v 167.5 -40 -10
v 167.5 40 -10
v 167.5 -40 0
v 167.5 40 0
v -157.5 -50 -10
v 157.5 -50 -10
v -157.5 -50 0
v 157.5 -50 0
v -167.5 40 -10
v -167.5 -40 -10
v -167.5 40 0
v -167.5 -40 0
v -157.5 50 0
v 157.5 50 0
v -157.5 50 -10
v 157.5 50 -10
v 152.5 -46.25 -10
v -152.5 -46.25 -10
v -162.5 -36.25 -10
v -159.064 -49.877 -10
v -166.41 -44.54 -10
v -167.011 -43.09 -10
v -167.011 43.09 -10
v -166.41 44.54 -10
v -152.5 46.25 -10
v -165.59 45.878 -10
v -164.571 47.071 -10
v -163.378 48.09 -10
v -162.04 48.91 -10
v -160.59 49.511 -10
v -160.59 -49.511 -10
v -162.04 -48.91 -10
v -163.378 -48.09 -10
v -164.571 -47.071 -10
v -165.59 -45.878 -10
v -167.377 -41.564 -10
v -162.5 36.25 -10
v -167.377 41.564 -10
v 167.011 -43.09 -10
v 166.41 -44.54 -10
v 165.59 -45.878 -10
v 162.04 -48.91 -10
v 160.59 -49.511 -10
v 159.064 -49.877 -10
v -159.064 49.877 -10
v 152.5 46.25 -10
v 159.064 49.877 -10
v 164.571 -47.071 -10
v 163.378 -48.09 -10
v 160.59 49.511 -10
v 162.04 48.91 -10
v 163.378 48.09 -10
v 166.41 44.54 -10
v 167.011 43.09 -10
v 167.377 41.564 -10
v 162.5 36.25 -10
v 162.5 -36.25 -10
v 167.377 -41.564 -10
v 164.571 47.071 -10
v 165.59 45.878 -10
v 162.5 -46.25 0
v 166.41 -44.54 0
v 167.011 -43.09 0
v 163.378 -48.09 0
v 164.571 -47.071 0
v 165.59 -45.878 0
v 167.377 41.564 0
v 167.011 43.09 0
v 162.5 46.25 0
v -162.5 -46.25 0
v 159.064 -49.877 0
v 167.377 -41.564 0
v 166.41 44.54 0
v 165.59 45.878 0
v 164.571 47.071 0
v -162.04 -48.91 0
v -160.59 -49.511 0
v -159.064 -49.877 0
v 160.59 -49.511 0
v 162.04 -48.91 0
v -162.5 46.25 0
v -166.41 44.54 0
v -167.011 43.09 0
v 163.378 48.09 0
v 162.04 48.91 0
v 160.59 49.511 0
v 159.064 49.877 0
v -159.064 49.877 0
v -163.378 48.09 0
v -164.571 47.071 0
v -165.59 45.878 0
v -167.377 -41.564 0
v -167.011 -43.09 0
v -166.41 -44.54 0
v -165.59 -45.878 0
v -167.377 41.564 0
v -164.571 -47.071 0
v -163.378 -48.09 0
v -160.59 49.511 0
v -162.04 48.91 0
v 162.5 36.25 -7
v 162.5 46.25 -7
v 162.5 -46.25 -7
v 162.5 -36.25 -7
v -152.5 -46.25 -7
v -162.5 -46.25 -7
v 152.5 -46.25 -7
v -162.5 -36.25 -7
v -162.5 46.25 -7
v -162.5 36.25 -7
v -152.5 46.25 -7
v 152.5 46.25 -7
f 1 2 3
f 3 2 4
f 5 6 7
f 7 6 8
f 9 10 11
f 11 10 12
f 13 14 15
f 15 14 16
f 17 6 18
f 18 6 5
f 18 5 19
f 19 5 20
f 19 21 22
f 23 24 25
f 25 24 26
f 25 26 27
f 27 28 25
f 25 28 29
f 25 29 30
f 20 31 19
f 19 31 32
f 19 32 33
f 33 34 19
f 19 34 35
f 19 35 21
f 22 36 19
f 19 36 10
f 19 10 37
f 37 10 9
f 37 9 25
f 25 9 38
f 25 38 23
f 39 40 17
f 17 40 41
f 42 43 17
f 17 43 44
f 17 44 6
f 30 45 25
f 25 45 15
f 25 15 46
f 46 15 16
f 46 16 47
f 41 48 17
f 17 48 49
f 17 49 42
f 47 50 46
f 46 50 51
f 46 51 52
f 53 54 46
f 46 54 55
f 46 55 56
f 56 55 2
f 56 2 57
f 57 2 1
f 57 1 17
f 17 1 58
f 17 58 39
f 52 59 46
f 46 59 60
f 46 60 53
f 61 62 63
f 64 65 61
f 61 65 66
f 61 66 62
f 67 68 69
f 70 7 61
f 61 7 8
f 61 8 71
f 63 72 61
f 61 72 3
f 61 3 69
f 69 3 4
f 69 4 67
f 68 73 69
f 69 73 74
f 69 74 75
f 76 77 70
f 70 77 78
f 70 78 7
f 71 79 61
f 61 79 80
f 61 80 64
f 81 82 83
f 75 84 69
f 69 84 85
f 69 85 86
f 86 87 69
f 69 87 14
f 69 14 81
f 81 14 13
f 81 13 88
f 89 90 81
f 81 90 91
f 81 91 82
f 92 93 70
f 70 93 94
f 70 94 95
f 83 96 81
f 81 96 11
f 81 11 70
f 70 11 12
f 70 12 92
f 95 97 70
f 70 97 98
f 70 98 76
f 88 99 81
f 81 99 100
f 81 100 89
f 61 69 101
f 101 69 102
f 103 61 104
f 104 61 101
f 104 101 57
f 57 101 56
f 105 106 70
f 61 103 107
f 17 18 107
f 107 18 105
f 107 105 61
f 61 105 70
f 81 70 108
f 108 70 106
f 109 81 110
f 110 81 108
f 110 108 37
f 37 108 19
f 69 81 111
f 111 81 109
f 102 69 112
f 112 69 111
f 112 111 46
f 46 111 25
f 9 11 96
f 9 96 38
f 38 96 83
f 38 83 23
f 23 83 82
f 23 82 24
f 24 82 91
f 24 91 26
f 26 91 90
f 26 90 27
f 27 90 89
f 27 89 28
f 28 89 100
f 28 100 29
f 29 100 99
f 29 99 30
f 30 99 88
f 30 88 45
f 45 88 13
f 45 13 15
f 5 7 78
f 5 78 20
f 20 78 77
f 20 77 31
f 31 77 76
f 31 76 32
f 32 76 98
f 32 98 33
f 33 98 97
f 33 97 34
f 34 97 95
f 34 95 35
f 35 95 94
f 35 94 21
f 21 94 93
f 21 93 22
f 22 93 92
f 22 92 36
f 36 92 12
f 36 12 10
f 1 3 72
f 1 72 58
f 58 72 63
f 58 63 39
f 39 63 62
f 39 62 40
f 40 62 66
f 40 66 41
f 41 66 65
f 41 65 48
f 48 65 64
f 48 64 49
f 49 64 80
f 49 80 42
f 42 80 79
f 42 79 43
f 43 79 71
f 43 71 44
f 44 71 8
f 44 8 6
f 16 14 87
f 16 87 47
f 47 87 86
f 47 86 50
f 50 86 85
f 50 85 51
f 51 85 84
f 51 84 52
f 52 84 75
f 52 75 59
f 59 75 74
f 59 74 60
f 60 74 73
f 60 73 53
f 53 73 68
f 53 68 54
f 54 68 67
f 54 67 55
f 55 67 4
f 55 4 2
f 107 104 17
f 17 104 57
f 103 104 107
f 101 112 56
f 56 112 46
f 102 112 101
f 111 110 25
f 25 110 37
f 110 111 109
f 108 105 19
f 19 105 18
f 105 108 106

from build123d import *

# Parameters (mm, degrees)
SKETCH1_W           = 335
SKETCH1_H           = 100
SKETCH1_W_2         = 325
SKETCH1_H_2         = 92.5
BOSS_EXTRUDE1_DEPTH = 10
FILLET1_R           = 10
BOSS_EXTRUDE2_DEPTH = 3


with BuildPart() as part:
    # Sketch1 → Boss-Extrude1 (new body)
    with BuildSketch(Plane.XY):
        Rectangle(SKETCH1_W, SKETCH1_H)
        Rectangle(SKETCH1_W_2, SKETCH1_H_2, mode=Mode.SUBTRACT)
    extrude(amount=-BOSS_EXTRUDE1_DEPTH)

    # Fillet1
    fillet1_edges = [part.edges().sort_by_distance(p)[0] for p in [
        (167.5, -50, -5),
        (-167.5, -50, -5),
        (-167.5, 50, -5),
        (167.5, 50, -5),
    ]]
    fillet(fillet1_edges, radius=FILLET1_R)

    # Sketch2 → Boss-Extrude2 (add)
    with BuildSketch(Plane(origin=(0, 0, -10), x_dir=(-1, 0, 0), z_dir=(0, 0, -1))):
        Polygon((-162.5, -46.25), (-162.5, -36.25), (-152.5, -46.25), align=None)
        Polygon((-162.5, 46.25), (-152.5, 46.25), (-162.5, 36.25), align=None)
        Polygon((162.5, 46.25), (152.5, 46.25), (162.5, 36.25), align=None)
        Polygon((162.5, -46.25), (162.5, -36.25), (152.5, -46.25), align=None)
    extrude(amount=-BOSS_EXTRUDE2_DEPTH)


solid = part.part
